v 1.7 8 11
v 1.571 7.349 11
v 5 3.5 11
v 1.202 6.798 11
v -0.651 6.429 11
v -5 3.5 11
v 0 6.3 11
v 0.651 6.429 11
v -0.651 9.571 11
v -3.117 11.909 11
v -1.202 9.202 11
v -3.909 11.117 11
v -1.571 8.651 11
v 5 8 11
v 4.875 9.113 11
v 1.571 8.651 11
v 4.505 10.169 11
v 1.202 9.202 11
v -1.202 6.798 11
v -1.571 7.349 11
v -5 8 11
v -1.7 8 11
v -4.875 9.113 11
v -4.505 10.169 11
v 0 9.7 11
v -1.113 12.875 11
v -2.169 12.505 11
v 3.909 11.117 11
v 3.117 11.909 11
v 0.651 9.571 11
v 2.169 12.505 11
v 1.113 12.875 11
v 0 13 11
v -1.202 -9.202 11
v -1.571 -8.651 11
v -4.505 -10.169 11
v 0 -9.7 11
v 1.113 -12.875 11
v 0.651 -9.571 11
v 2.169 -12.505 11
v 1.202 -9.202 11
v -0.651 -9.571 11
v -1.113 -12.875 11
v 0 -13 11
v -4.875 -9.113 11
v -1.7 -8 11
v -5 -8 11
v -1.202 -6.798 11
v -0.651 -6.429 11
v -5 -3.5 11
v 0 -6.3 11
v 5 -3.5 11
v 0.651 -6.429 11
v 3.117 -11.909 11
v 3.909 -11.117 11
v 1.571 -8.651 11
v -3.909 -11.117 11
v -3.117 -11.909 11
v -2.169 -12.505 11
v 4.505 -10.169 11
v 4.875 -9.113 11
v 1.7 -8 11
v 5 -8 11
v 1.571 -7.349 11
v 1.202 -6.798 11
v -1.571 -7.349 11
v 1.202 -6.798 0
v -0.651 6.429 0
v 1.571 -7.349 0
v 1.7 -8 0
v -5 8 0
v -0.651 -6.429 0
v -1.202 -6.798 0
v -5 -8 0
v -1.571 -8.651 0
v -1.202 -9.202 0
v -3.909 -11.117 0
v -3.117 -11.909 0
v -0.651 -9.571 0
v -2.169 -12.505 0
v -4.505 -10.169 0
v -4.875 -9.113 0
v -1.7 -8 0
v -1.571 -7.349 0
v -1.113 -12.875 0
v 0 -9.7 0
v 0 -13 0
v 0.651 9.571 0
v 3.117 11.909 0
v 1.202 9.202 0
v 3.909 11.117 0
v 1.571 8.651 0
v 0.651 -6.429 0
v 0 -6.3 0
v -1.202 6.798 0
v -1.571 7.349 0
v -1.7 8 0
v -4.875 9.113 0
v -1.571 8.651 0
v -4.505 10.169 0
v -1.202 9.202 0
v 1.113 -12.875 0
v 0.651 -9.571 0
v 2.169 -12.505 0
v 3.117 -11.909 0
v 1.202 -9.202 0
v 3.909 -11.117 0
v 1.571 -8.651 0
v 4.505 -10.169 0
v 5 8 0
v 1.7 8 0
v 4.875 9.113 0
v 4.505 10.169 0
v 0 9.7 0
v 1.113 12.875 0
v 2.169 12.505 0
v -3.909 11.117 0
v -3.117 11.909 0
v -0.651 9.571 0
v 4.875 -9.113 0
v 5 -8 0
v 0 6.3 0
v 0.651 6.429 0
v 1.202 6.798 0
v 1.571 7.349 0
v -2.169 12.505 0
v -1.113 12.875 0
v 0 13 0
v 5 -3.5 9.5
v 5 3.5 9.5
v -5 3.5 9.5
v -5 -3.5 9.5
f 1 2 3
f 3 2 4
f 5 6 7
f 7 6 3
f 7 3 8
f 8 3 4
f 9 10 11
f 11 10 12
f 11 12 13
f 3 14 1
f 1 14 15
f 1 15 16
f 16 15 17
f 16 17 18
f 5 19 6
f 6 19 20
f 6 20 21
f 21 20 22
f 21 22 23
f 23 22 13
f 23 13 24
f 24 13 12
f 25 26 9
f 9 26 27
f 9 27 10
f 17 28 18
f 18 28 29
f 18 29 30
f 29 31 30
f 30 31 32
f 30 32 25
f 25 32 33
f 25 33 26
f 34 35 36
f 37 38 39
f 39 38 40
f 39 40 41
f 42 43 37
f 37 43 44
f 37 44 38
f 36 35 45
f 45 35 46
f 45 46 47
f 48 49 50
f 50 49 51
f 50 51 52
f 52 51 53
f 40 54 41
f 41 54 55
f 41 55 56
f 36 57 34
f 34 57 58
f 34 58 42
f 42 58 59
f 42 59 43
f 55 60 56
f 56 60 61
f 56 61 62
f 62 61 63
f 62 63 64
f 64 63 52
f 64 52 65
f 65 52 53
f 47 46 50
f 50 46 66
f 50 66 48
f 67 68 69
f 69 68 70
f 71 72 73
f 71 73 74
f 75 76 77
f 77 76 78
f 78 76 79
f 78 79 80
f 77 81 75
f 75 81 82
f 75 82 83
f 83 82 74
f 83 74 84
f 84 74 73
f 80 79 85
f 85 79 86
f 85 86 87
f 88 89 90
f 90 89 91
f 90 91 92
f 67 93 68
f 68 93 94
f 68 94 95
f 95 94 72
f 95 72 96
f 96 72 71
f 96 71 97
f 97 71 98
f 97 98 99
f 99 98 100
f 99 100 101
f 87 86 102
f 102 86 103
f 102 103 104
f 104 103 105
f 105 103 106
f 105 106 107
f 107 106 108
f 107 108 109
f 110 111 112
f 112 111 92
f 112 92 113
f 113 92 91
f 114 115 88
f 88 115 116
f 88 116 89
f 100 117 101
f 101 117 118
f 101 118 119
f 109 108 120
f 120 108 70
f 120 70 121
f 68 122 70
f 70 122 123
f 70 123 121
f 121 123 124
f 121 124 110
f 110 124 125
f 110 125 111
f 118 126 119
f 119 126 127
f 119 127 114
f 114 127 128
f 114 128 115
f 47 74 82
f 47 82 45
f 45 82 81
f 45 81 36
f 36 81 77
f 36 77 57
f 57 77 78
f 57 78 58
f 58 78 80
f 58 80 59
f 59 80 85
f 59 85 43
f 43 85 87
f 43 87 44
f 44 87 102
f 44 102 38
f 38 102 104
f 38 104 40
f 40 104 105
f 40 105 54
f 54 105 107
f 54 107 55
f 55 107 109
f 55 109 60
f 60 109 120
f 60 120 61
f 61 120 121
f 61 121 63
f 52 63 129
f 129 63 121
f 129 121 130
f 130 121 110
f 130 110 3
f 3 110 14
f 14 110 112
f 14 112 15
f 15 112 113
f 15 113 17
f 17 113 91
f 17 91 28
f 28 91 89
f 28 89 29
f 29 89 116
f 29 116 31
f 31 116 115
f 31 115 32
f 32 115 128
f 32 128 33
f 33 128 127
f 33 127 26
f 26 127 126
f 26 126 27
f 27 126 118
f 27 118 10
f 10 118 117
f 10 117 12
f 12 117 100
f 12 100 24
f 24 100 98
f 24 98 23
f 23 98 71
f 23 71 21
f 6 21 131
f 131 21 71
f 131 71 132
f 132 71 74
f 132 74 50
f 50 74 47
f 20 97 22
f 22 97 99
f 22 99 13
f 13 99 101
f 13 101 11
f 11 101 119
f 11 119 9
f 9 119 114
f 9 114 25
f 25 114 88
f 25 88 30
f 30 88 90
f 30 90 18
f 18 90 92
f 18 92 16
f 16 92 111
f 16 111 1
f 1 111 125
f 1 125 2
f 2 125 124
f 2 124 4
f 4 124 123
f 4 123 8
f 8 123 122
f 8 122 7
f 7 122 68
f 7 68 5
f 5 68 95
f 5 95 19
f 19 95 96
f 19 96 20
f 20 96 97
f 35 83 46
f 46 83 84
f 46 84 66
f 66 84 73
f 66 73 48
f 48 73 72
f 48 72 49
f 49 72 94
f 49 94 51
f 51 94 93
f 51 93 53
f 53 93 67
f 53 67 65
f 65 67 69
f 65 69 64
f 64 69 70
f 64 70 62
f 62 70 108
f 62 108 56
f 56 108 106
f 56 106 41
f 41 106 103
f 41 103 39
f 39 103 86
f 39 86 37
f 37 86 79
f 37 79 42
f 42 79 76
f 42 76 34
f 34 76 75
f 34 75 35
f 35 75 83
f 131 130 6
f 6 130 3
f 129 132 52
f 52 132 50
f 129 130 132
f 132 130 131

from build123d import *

# Parameters (mm, degrees)
SKETCH1_R           = 1.7
BOSS_EXTRUDE1_DEPTH = 11
SKETCH2_W           = 10
SKETCH2_H           = 7
CUT_EXTRUDE1_DEPTH  = 1.5


with BuildPart() as part:
    # Sketch1 → Boss-Extrude1 (new body)
    with BuildSketch(Plane.XY):
        with BuildLine():
            Line((-5, -8), (-5, 8))
            ThreePointArc((-5, 8), (0, 13), (5, 8))
            Line((5, 8), (5, -8))
            ThreePointArc((5, -8), (0, -13), (-5, -8))
        make_face()
        with Locations((0, 8)):
            Circle(SKETCH1_R, mode=Mode.SUBTRACT)
        with Locations((0, -8)):
            Circle(SKETCH1_R, mode=Mode.SUBTRACT)
    extrude(amount=BOSS_EXTRUDE1_DEPTH)

    # Sketch2 → Cut-Extrude1 (cut)
    with BuildSketch(Plane.XY.offset(11)):
        Rectangle(SKETCH2_W, SKETCH2_H)
    extrude(amount=-CUT_EXTRUDE1_DEPTH, mode=Mode.SUBTRACT)


solid = part.part
